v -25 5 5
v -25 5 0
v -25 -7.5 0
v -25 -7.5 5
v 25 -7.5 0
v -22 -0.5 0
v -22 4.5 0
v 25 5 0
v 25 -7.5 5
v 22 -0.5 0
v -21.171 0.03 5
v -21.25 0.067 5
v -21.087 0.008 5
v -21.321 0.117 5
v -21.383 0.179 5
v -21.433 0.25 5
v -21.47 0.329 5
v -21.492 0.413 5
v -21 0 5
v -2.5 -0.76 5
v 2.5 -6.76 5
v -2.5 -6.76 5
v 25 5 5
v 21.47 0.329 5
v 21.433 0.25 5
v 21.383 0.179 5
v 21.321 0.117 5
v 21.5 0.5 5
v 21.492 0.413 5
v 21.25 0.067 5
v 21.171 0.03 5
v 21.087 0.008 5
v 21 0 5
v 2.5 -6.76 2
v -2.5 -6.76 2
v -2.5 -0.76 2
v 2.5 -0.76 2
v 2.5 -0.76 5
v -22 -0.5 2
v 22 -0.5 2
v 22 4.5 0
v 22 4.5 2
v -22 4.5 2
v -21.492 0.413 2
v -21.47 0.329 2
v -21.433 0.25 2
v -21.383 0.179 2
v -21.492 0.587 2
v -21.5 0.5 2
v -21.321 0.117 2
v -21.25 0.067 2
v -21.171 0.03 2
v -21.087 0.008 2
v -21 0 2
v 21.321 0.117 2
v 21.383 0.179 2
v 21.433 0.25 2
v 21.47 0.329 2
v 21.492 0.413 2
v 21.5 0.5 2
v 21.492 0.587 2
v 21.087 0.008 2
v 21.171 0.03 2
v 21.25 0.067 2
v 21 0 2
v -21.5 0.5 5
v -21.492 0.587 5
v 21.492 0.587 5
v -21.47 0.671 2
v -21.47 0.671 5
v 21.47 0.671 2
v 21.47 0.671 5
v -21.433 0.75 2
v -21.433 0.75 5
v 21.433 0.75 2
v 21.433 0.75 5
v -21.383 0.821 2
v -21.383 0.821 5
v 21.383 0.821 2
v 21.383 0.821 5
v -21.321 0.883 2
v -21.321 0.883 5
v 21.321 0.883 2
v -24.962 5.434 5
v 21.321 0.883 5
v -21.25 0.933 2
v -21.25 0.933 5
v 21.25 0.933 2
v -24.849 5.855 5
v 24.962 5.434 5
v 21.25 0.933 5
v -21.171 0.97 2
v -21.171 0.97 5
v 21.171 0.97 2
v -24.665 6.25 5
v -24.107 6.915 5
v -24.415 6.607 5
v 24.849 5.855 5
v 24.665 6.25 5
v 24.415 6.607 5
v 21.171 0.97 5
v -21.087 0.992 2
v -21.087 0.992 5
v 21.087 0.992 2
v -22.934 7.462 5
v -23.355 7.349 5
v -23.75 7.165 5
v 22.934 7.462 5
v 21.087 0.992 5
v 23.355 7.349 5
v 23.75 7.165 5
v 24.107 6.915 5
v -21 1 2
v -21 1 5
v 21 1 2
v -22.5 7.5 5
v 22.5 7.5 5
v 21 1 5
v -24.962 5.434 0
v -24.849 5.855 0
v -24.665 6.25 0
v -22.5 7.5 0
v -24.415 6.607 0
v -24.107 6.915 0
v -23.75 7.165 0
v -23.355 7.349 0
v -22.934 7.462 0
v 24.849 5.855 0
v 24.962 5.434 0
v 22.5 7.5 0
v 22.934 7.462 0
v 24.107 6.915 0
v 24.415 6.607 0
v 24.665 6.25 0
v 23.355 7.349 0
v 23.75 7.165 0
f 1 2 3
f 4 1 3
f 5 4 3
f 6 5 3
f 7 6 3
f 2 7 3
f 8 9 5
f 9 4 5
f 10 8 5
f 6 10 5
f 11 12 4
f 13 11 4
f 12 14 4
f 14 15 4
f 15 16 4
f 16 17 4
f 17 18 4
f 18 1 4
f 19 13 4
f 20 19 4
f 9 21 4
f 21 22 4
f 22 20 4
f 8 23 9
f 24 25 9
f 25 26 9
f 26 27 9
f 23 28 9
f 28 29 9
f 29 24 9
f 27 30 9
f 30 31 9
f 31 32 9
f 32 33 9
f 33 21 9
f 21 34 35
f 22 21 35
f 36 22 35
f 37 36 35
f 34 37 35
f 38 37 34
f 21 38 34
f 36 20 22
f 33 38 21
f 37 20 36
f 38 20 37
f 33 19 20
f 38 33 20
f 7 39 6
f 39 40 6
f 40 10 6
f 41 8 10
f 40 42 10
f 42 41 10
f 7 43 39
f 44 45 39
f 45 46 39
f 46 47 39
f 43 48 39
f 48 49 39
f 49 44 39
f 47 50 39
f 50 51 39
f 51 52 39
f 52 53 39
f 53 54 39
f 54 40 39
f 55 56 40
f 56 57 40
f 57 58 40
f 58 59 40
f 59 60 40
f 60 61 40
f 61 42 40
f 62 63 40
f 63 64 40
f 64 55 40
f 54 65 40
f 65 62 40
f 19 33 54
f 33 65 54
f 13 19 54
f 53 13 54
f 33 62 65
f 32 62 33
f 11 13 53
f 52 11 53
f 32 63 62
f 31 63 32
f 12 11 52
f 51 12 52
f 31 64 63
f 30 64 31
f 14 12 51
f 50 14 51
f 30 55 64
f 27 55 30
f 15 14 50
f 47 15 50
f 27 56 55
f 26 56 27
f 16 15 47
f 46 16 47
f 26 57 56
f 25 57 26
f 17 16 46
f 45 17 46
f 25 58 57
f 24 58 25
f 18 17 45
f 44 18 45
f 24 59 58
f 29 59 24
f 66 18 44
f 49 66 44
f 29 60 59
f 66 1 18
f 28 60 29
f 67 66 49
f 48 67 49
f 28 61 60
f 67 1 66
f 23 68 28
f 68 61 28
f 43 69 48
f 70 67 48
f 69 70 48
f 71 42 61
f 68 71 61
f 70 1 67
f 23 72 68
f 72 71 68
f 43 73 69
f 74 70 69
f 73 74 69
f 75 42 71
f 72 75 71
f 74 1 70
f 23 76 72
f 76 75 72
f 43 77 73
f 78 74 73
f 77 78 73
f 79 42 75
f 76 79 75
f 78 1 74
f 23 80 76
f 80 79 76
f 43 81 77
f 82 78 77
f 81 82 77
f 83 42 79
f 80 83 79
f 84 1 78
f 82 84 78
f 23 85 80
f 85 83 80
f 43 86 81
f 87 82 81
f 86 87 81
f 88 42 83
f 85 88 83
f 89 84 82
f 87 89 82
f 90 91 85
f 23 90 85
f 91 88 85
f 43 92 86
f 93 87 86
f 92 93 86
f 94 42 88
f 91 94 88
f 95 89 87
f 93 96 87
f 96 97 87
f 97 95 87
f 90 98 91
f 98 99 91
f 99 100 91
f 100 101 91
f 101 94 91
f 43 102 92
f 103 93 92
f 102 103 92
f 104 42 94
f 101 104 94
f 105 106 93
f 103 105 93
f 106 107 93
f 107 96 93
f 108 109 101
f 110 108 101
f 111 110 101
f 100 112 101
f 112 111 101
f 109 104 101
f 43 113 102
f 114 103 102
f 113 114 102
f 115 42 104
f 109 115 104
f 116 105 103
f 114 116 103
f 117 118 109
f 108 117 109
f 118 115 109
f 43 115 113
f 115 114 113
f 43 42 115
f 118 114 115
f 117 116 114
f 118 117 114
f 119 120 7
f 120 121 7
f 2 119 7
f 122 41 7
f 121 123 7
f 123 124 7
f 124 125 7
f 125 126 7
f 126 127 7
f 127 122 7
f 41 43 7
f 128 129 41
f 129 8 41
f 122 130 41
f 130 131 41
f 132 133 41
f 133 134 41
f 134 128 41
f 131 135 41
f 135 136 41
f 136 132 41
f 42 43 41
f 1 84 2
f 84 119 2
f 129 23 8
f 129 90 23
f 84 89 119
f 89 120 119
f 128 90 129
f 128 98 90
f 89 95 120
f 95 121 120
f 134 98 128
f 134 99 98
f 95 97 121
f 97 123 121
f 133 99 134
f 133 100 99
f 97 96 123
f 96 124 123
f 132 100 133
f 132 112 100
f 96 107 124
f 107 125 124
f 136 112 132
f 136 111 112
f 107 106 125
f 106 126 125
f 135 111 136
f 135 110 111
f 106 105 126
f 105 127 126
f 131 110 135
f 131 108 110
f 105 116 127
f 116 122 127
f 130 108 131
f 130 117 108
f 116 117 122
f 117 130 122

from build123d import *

# Parameters (mm, degrees)
CROQUIS1_W              = 50
CROQUIS1_H              = 15
SALIENTE_EXTRUIR1_DEPTH = 5
CROQUIS1_4_W            = 44
CROQUIS1_4_H            = 5
CORTAR_EXTRUIR1_DEPTH   = 2
REDONDEO1_R             = 2.5
CORTAR_EXTRUIR2_DEPTH   = 27.272609311
CROQUIS3_W              = 5
CROQUIS3_H              = 6
CORTAR_EXTRUIR3_DEPTH   = 3


with BuildPart() as part:
    # Croquis1 → Saliente-Extruir1 (new body)
    with BuildSketch(Plane.XY):
        Rectangle(CROQUIS1_W, CROQUIS1_H)
    extrude(amount=SALIENTE_EXTRUIR1_DEPTH)

    # Croquis1<4> → Cortar-Extruir1 (cut)
    with BuildSketch(Plane.XY):
        with Locations((0, 2)):
            Rectangle(CROQUIS1_4_W, CROQUIS1_4_H)
    extrude(amount=CORTAR_EXTRUIR1_DEPTH, mode=Mode.SUBTRACT)

    # Redondeo1
    redondeo1_edges = [part.edges().sort_by_distance(p)[0] for p in [
        (-25, 7.5, 2.5),
        (25, 7.5, 2.5),
    ]]
    fillet(redondeo1_edges, radius=REDONDEO1_R)

    # Croquis2 → Cortar-Extruir2 (cut, through all)
    with BuildSketch(Plane(origin=(0, 0, 2), x_dir=(-1, 0, 0), z_dir=(0, 0, -1))):
        with BuildLine():
            Line((-21, 1), (21, 1))
            ThreePointArc((21, 1), (21.5, 0.5), (21, 0))
            Line((21, 0), (-21, 0))
            ThreePointArc((-21, 0), (-21.5, 0.5), (-21, 1))
        make_face()
    extrude(amount=-CORTAR_EXTRUIR2_DEPTH, mode=Mode.SUBTRACT)

    # Croquis3 → Cortar-Extruir3 (cut)
    with BuildSketch(Plane.XY.offset(5)):
        with Locations((0, -3.760126058)):
            Rectangle(CROQUIS3_W, CROQUIS3_H)
    extrude(amount=-CORTAR_EXTRUIR3_DEPTH, mode=Mode.SUBTRACT)


solid = part.part
